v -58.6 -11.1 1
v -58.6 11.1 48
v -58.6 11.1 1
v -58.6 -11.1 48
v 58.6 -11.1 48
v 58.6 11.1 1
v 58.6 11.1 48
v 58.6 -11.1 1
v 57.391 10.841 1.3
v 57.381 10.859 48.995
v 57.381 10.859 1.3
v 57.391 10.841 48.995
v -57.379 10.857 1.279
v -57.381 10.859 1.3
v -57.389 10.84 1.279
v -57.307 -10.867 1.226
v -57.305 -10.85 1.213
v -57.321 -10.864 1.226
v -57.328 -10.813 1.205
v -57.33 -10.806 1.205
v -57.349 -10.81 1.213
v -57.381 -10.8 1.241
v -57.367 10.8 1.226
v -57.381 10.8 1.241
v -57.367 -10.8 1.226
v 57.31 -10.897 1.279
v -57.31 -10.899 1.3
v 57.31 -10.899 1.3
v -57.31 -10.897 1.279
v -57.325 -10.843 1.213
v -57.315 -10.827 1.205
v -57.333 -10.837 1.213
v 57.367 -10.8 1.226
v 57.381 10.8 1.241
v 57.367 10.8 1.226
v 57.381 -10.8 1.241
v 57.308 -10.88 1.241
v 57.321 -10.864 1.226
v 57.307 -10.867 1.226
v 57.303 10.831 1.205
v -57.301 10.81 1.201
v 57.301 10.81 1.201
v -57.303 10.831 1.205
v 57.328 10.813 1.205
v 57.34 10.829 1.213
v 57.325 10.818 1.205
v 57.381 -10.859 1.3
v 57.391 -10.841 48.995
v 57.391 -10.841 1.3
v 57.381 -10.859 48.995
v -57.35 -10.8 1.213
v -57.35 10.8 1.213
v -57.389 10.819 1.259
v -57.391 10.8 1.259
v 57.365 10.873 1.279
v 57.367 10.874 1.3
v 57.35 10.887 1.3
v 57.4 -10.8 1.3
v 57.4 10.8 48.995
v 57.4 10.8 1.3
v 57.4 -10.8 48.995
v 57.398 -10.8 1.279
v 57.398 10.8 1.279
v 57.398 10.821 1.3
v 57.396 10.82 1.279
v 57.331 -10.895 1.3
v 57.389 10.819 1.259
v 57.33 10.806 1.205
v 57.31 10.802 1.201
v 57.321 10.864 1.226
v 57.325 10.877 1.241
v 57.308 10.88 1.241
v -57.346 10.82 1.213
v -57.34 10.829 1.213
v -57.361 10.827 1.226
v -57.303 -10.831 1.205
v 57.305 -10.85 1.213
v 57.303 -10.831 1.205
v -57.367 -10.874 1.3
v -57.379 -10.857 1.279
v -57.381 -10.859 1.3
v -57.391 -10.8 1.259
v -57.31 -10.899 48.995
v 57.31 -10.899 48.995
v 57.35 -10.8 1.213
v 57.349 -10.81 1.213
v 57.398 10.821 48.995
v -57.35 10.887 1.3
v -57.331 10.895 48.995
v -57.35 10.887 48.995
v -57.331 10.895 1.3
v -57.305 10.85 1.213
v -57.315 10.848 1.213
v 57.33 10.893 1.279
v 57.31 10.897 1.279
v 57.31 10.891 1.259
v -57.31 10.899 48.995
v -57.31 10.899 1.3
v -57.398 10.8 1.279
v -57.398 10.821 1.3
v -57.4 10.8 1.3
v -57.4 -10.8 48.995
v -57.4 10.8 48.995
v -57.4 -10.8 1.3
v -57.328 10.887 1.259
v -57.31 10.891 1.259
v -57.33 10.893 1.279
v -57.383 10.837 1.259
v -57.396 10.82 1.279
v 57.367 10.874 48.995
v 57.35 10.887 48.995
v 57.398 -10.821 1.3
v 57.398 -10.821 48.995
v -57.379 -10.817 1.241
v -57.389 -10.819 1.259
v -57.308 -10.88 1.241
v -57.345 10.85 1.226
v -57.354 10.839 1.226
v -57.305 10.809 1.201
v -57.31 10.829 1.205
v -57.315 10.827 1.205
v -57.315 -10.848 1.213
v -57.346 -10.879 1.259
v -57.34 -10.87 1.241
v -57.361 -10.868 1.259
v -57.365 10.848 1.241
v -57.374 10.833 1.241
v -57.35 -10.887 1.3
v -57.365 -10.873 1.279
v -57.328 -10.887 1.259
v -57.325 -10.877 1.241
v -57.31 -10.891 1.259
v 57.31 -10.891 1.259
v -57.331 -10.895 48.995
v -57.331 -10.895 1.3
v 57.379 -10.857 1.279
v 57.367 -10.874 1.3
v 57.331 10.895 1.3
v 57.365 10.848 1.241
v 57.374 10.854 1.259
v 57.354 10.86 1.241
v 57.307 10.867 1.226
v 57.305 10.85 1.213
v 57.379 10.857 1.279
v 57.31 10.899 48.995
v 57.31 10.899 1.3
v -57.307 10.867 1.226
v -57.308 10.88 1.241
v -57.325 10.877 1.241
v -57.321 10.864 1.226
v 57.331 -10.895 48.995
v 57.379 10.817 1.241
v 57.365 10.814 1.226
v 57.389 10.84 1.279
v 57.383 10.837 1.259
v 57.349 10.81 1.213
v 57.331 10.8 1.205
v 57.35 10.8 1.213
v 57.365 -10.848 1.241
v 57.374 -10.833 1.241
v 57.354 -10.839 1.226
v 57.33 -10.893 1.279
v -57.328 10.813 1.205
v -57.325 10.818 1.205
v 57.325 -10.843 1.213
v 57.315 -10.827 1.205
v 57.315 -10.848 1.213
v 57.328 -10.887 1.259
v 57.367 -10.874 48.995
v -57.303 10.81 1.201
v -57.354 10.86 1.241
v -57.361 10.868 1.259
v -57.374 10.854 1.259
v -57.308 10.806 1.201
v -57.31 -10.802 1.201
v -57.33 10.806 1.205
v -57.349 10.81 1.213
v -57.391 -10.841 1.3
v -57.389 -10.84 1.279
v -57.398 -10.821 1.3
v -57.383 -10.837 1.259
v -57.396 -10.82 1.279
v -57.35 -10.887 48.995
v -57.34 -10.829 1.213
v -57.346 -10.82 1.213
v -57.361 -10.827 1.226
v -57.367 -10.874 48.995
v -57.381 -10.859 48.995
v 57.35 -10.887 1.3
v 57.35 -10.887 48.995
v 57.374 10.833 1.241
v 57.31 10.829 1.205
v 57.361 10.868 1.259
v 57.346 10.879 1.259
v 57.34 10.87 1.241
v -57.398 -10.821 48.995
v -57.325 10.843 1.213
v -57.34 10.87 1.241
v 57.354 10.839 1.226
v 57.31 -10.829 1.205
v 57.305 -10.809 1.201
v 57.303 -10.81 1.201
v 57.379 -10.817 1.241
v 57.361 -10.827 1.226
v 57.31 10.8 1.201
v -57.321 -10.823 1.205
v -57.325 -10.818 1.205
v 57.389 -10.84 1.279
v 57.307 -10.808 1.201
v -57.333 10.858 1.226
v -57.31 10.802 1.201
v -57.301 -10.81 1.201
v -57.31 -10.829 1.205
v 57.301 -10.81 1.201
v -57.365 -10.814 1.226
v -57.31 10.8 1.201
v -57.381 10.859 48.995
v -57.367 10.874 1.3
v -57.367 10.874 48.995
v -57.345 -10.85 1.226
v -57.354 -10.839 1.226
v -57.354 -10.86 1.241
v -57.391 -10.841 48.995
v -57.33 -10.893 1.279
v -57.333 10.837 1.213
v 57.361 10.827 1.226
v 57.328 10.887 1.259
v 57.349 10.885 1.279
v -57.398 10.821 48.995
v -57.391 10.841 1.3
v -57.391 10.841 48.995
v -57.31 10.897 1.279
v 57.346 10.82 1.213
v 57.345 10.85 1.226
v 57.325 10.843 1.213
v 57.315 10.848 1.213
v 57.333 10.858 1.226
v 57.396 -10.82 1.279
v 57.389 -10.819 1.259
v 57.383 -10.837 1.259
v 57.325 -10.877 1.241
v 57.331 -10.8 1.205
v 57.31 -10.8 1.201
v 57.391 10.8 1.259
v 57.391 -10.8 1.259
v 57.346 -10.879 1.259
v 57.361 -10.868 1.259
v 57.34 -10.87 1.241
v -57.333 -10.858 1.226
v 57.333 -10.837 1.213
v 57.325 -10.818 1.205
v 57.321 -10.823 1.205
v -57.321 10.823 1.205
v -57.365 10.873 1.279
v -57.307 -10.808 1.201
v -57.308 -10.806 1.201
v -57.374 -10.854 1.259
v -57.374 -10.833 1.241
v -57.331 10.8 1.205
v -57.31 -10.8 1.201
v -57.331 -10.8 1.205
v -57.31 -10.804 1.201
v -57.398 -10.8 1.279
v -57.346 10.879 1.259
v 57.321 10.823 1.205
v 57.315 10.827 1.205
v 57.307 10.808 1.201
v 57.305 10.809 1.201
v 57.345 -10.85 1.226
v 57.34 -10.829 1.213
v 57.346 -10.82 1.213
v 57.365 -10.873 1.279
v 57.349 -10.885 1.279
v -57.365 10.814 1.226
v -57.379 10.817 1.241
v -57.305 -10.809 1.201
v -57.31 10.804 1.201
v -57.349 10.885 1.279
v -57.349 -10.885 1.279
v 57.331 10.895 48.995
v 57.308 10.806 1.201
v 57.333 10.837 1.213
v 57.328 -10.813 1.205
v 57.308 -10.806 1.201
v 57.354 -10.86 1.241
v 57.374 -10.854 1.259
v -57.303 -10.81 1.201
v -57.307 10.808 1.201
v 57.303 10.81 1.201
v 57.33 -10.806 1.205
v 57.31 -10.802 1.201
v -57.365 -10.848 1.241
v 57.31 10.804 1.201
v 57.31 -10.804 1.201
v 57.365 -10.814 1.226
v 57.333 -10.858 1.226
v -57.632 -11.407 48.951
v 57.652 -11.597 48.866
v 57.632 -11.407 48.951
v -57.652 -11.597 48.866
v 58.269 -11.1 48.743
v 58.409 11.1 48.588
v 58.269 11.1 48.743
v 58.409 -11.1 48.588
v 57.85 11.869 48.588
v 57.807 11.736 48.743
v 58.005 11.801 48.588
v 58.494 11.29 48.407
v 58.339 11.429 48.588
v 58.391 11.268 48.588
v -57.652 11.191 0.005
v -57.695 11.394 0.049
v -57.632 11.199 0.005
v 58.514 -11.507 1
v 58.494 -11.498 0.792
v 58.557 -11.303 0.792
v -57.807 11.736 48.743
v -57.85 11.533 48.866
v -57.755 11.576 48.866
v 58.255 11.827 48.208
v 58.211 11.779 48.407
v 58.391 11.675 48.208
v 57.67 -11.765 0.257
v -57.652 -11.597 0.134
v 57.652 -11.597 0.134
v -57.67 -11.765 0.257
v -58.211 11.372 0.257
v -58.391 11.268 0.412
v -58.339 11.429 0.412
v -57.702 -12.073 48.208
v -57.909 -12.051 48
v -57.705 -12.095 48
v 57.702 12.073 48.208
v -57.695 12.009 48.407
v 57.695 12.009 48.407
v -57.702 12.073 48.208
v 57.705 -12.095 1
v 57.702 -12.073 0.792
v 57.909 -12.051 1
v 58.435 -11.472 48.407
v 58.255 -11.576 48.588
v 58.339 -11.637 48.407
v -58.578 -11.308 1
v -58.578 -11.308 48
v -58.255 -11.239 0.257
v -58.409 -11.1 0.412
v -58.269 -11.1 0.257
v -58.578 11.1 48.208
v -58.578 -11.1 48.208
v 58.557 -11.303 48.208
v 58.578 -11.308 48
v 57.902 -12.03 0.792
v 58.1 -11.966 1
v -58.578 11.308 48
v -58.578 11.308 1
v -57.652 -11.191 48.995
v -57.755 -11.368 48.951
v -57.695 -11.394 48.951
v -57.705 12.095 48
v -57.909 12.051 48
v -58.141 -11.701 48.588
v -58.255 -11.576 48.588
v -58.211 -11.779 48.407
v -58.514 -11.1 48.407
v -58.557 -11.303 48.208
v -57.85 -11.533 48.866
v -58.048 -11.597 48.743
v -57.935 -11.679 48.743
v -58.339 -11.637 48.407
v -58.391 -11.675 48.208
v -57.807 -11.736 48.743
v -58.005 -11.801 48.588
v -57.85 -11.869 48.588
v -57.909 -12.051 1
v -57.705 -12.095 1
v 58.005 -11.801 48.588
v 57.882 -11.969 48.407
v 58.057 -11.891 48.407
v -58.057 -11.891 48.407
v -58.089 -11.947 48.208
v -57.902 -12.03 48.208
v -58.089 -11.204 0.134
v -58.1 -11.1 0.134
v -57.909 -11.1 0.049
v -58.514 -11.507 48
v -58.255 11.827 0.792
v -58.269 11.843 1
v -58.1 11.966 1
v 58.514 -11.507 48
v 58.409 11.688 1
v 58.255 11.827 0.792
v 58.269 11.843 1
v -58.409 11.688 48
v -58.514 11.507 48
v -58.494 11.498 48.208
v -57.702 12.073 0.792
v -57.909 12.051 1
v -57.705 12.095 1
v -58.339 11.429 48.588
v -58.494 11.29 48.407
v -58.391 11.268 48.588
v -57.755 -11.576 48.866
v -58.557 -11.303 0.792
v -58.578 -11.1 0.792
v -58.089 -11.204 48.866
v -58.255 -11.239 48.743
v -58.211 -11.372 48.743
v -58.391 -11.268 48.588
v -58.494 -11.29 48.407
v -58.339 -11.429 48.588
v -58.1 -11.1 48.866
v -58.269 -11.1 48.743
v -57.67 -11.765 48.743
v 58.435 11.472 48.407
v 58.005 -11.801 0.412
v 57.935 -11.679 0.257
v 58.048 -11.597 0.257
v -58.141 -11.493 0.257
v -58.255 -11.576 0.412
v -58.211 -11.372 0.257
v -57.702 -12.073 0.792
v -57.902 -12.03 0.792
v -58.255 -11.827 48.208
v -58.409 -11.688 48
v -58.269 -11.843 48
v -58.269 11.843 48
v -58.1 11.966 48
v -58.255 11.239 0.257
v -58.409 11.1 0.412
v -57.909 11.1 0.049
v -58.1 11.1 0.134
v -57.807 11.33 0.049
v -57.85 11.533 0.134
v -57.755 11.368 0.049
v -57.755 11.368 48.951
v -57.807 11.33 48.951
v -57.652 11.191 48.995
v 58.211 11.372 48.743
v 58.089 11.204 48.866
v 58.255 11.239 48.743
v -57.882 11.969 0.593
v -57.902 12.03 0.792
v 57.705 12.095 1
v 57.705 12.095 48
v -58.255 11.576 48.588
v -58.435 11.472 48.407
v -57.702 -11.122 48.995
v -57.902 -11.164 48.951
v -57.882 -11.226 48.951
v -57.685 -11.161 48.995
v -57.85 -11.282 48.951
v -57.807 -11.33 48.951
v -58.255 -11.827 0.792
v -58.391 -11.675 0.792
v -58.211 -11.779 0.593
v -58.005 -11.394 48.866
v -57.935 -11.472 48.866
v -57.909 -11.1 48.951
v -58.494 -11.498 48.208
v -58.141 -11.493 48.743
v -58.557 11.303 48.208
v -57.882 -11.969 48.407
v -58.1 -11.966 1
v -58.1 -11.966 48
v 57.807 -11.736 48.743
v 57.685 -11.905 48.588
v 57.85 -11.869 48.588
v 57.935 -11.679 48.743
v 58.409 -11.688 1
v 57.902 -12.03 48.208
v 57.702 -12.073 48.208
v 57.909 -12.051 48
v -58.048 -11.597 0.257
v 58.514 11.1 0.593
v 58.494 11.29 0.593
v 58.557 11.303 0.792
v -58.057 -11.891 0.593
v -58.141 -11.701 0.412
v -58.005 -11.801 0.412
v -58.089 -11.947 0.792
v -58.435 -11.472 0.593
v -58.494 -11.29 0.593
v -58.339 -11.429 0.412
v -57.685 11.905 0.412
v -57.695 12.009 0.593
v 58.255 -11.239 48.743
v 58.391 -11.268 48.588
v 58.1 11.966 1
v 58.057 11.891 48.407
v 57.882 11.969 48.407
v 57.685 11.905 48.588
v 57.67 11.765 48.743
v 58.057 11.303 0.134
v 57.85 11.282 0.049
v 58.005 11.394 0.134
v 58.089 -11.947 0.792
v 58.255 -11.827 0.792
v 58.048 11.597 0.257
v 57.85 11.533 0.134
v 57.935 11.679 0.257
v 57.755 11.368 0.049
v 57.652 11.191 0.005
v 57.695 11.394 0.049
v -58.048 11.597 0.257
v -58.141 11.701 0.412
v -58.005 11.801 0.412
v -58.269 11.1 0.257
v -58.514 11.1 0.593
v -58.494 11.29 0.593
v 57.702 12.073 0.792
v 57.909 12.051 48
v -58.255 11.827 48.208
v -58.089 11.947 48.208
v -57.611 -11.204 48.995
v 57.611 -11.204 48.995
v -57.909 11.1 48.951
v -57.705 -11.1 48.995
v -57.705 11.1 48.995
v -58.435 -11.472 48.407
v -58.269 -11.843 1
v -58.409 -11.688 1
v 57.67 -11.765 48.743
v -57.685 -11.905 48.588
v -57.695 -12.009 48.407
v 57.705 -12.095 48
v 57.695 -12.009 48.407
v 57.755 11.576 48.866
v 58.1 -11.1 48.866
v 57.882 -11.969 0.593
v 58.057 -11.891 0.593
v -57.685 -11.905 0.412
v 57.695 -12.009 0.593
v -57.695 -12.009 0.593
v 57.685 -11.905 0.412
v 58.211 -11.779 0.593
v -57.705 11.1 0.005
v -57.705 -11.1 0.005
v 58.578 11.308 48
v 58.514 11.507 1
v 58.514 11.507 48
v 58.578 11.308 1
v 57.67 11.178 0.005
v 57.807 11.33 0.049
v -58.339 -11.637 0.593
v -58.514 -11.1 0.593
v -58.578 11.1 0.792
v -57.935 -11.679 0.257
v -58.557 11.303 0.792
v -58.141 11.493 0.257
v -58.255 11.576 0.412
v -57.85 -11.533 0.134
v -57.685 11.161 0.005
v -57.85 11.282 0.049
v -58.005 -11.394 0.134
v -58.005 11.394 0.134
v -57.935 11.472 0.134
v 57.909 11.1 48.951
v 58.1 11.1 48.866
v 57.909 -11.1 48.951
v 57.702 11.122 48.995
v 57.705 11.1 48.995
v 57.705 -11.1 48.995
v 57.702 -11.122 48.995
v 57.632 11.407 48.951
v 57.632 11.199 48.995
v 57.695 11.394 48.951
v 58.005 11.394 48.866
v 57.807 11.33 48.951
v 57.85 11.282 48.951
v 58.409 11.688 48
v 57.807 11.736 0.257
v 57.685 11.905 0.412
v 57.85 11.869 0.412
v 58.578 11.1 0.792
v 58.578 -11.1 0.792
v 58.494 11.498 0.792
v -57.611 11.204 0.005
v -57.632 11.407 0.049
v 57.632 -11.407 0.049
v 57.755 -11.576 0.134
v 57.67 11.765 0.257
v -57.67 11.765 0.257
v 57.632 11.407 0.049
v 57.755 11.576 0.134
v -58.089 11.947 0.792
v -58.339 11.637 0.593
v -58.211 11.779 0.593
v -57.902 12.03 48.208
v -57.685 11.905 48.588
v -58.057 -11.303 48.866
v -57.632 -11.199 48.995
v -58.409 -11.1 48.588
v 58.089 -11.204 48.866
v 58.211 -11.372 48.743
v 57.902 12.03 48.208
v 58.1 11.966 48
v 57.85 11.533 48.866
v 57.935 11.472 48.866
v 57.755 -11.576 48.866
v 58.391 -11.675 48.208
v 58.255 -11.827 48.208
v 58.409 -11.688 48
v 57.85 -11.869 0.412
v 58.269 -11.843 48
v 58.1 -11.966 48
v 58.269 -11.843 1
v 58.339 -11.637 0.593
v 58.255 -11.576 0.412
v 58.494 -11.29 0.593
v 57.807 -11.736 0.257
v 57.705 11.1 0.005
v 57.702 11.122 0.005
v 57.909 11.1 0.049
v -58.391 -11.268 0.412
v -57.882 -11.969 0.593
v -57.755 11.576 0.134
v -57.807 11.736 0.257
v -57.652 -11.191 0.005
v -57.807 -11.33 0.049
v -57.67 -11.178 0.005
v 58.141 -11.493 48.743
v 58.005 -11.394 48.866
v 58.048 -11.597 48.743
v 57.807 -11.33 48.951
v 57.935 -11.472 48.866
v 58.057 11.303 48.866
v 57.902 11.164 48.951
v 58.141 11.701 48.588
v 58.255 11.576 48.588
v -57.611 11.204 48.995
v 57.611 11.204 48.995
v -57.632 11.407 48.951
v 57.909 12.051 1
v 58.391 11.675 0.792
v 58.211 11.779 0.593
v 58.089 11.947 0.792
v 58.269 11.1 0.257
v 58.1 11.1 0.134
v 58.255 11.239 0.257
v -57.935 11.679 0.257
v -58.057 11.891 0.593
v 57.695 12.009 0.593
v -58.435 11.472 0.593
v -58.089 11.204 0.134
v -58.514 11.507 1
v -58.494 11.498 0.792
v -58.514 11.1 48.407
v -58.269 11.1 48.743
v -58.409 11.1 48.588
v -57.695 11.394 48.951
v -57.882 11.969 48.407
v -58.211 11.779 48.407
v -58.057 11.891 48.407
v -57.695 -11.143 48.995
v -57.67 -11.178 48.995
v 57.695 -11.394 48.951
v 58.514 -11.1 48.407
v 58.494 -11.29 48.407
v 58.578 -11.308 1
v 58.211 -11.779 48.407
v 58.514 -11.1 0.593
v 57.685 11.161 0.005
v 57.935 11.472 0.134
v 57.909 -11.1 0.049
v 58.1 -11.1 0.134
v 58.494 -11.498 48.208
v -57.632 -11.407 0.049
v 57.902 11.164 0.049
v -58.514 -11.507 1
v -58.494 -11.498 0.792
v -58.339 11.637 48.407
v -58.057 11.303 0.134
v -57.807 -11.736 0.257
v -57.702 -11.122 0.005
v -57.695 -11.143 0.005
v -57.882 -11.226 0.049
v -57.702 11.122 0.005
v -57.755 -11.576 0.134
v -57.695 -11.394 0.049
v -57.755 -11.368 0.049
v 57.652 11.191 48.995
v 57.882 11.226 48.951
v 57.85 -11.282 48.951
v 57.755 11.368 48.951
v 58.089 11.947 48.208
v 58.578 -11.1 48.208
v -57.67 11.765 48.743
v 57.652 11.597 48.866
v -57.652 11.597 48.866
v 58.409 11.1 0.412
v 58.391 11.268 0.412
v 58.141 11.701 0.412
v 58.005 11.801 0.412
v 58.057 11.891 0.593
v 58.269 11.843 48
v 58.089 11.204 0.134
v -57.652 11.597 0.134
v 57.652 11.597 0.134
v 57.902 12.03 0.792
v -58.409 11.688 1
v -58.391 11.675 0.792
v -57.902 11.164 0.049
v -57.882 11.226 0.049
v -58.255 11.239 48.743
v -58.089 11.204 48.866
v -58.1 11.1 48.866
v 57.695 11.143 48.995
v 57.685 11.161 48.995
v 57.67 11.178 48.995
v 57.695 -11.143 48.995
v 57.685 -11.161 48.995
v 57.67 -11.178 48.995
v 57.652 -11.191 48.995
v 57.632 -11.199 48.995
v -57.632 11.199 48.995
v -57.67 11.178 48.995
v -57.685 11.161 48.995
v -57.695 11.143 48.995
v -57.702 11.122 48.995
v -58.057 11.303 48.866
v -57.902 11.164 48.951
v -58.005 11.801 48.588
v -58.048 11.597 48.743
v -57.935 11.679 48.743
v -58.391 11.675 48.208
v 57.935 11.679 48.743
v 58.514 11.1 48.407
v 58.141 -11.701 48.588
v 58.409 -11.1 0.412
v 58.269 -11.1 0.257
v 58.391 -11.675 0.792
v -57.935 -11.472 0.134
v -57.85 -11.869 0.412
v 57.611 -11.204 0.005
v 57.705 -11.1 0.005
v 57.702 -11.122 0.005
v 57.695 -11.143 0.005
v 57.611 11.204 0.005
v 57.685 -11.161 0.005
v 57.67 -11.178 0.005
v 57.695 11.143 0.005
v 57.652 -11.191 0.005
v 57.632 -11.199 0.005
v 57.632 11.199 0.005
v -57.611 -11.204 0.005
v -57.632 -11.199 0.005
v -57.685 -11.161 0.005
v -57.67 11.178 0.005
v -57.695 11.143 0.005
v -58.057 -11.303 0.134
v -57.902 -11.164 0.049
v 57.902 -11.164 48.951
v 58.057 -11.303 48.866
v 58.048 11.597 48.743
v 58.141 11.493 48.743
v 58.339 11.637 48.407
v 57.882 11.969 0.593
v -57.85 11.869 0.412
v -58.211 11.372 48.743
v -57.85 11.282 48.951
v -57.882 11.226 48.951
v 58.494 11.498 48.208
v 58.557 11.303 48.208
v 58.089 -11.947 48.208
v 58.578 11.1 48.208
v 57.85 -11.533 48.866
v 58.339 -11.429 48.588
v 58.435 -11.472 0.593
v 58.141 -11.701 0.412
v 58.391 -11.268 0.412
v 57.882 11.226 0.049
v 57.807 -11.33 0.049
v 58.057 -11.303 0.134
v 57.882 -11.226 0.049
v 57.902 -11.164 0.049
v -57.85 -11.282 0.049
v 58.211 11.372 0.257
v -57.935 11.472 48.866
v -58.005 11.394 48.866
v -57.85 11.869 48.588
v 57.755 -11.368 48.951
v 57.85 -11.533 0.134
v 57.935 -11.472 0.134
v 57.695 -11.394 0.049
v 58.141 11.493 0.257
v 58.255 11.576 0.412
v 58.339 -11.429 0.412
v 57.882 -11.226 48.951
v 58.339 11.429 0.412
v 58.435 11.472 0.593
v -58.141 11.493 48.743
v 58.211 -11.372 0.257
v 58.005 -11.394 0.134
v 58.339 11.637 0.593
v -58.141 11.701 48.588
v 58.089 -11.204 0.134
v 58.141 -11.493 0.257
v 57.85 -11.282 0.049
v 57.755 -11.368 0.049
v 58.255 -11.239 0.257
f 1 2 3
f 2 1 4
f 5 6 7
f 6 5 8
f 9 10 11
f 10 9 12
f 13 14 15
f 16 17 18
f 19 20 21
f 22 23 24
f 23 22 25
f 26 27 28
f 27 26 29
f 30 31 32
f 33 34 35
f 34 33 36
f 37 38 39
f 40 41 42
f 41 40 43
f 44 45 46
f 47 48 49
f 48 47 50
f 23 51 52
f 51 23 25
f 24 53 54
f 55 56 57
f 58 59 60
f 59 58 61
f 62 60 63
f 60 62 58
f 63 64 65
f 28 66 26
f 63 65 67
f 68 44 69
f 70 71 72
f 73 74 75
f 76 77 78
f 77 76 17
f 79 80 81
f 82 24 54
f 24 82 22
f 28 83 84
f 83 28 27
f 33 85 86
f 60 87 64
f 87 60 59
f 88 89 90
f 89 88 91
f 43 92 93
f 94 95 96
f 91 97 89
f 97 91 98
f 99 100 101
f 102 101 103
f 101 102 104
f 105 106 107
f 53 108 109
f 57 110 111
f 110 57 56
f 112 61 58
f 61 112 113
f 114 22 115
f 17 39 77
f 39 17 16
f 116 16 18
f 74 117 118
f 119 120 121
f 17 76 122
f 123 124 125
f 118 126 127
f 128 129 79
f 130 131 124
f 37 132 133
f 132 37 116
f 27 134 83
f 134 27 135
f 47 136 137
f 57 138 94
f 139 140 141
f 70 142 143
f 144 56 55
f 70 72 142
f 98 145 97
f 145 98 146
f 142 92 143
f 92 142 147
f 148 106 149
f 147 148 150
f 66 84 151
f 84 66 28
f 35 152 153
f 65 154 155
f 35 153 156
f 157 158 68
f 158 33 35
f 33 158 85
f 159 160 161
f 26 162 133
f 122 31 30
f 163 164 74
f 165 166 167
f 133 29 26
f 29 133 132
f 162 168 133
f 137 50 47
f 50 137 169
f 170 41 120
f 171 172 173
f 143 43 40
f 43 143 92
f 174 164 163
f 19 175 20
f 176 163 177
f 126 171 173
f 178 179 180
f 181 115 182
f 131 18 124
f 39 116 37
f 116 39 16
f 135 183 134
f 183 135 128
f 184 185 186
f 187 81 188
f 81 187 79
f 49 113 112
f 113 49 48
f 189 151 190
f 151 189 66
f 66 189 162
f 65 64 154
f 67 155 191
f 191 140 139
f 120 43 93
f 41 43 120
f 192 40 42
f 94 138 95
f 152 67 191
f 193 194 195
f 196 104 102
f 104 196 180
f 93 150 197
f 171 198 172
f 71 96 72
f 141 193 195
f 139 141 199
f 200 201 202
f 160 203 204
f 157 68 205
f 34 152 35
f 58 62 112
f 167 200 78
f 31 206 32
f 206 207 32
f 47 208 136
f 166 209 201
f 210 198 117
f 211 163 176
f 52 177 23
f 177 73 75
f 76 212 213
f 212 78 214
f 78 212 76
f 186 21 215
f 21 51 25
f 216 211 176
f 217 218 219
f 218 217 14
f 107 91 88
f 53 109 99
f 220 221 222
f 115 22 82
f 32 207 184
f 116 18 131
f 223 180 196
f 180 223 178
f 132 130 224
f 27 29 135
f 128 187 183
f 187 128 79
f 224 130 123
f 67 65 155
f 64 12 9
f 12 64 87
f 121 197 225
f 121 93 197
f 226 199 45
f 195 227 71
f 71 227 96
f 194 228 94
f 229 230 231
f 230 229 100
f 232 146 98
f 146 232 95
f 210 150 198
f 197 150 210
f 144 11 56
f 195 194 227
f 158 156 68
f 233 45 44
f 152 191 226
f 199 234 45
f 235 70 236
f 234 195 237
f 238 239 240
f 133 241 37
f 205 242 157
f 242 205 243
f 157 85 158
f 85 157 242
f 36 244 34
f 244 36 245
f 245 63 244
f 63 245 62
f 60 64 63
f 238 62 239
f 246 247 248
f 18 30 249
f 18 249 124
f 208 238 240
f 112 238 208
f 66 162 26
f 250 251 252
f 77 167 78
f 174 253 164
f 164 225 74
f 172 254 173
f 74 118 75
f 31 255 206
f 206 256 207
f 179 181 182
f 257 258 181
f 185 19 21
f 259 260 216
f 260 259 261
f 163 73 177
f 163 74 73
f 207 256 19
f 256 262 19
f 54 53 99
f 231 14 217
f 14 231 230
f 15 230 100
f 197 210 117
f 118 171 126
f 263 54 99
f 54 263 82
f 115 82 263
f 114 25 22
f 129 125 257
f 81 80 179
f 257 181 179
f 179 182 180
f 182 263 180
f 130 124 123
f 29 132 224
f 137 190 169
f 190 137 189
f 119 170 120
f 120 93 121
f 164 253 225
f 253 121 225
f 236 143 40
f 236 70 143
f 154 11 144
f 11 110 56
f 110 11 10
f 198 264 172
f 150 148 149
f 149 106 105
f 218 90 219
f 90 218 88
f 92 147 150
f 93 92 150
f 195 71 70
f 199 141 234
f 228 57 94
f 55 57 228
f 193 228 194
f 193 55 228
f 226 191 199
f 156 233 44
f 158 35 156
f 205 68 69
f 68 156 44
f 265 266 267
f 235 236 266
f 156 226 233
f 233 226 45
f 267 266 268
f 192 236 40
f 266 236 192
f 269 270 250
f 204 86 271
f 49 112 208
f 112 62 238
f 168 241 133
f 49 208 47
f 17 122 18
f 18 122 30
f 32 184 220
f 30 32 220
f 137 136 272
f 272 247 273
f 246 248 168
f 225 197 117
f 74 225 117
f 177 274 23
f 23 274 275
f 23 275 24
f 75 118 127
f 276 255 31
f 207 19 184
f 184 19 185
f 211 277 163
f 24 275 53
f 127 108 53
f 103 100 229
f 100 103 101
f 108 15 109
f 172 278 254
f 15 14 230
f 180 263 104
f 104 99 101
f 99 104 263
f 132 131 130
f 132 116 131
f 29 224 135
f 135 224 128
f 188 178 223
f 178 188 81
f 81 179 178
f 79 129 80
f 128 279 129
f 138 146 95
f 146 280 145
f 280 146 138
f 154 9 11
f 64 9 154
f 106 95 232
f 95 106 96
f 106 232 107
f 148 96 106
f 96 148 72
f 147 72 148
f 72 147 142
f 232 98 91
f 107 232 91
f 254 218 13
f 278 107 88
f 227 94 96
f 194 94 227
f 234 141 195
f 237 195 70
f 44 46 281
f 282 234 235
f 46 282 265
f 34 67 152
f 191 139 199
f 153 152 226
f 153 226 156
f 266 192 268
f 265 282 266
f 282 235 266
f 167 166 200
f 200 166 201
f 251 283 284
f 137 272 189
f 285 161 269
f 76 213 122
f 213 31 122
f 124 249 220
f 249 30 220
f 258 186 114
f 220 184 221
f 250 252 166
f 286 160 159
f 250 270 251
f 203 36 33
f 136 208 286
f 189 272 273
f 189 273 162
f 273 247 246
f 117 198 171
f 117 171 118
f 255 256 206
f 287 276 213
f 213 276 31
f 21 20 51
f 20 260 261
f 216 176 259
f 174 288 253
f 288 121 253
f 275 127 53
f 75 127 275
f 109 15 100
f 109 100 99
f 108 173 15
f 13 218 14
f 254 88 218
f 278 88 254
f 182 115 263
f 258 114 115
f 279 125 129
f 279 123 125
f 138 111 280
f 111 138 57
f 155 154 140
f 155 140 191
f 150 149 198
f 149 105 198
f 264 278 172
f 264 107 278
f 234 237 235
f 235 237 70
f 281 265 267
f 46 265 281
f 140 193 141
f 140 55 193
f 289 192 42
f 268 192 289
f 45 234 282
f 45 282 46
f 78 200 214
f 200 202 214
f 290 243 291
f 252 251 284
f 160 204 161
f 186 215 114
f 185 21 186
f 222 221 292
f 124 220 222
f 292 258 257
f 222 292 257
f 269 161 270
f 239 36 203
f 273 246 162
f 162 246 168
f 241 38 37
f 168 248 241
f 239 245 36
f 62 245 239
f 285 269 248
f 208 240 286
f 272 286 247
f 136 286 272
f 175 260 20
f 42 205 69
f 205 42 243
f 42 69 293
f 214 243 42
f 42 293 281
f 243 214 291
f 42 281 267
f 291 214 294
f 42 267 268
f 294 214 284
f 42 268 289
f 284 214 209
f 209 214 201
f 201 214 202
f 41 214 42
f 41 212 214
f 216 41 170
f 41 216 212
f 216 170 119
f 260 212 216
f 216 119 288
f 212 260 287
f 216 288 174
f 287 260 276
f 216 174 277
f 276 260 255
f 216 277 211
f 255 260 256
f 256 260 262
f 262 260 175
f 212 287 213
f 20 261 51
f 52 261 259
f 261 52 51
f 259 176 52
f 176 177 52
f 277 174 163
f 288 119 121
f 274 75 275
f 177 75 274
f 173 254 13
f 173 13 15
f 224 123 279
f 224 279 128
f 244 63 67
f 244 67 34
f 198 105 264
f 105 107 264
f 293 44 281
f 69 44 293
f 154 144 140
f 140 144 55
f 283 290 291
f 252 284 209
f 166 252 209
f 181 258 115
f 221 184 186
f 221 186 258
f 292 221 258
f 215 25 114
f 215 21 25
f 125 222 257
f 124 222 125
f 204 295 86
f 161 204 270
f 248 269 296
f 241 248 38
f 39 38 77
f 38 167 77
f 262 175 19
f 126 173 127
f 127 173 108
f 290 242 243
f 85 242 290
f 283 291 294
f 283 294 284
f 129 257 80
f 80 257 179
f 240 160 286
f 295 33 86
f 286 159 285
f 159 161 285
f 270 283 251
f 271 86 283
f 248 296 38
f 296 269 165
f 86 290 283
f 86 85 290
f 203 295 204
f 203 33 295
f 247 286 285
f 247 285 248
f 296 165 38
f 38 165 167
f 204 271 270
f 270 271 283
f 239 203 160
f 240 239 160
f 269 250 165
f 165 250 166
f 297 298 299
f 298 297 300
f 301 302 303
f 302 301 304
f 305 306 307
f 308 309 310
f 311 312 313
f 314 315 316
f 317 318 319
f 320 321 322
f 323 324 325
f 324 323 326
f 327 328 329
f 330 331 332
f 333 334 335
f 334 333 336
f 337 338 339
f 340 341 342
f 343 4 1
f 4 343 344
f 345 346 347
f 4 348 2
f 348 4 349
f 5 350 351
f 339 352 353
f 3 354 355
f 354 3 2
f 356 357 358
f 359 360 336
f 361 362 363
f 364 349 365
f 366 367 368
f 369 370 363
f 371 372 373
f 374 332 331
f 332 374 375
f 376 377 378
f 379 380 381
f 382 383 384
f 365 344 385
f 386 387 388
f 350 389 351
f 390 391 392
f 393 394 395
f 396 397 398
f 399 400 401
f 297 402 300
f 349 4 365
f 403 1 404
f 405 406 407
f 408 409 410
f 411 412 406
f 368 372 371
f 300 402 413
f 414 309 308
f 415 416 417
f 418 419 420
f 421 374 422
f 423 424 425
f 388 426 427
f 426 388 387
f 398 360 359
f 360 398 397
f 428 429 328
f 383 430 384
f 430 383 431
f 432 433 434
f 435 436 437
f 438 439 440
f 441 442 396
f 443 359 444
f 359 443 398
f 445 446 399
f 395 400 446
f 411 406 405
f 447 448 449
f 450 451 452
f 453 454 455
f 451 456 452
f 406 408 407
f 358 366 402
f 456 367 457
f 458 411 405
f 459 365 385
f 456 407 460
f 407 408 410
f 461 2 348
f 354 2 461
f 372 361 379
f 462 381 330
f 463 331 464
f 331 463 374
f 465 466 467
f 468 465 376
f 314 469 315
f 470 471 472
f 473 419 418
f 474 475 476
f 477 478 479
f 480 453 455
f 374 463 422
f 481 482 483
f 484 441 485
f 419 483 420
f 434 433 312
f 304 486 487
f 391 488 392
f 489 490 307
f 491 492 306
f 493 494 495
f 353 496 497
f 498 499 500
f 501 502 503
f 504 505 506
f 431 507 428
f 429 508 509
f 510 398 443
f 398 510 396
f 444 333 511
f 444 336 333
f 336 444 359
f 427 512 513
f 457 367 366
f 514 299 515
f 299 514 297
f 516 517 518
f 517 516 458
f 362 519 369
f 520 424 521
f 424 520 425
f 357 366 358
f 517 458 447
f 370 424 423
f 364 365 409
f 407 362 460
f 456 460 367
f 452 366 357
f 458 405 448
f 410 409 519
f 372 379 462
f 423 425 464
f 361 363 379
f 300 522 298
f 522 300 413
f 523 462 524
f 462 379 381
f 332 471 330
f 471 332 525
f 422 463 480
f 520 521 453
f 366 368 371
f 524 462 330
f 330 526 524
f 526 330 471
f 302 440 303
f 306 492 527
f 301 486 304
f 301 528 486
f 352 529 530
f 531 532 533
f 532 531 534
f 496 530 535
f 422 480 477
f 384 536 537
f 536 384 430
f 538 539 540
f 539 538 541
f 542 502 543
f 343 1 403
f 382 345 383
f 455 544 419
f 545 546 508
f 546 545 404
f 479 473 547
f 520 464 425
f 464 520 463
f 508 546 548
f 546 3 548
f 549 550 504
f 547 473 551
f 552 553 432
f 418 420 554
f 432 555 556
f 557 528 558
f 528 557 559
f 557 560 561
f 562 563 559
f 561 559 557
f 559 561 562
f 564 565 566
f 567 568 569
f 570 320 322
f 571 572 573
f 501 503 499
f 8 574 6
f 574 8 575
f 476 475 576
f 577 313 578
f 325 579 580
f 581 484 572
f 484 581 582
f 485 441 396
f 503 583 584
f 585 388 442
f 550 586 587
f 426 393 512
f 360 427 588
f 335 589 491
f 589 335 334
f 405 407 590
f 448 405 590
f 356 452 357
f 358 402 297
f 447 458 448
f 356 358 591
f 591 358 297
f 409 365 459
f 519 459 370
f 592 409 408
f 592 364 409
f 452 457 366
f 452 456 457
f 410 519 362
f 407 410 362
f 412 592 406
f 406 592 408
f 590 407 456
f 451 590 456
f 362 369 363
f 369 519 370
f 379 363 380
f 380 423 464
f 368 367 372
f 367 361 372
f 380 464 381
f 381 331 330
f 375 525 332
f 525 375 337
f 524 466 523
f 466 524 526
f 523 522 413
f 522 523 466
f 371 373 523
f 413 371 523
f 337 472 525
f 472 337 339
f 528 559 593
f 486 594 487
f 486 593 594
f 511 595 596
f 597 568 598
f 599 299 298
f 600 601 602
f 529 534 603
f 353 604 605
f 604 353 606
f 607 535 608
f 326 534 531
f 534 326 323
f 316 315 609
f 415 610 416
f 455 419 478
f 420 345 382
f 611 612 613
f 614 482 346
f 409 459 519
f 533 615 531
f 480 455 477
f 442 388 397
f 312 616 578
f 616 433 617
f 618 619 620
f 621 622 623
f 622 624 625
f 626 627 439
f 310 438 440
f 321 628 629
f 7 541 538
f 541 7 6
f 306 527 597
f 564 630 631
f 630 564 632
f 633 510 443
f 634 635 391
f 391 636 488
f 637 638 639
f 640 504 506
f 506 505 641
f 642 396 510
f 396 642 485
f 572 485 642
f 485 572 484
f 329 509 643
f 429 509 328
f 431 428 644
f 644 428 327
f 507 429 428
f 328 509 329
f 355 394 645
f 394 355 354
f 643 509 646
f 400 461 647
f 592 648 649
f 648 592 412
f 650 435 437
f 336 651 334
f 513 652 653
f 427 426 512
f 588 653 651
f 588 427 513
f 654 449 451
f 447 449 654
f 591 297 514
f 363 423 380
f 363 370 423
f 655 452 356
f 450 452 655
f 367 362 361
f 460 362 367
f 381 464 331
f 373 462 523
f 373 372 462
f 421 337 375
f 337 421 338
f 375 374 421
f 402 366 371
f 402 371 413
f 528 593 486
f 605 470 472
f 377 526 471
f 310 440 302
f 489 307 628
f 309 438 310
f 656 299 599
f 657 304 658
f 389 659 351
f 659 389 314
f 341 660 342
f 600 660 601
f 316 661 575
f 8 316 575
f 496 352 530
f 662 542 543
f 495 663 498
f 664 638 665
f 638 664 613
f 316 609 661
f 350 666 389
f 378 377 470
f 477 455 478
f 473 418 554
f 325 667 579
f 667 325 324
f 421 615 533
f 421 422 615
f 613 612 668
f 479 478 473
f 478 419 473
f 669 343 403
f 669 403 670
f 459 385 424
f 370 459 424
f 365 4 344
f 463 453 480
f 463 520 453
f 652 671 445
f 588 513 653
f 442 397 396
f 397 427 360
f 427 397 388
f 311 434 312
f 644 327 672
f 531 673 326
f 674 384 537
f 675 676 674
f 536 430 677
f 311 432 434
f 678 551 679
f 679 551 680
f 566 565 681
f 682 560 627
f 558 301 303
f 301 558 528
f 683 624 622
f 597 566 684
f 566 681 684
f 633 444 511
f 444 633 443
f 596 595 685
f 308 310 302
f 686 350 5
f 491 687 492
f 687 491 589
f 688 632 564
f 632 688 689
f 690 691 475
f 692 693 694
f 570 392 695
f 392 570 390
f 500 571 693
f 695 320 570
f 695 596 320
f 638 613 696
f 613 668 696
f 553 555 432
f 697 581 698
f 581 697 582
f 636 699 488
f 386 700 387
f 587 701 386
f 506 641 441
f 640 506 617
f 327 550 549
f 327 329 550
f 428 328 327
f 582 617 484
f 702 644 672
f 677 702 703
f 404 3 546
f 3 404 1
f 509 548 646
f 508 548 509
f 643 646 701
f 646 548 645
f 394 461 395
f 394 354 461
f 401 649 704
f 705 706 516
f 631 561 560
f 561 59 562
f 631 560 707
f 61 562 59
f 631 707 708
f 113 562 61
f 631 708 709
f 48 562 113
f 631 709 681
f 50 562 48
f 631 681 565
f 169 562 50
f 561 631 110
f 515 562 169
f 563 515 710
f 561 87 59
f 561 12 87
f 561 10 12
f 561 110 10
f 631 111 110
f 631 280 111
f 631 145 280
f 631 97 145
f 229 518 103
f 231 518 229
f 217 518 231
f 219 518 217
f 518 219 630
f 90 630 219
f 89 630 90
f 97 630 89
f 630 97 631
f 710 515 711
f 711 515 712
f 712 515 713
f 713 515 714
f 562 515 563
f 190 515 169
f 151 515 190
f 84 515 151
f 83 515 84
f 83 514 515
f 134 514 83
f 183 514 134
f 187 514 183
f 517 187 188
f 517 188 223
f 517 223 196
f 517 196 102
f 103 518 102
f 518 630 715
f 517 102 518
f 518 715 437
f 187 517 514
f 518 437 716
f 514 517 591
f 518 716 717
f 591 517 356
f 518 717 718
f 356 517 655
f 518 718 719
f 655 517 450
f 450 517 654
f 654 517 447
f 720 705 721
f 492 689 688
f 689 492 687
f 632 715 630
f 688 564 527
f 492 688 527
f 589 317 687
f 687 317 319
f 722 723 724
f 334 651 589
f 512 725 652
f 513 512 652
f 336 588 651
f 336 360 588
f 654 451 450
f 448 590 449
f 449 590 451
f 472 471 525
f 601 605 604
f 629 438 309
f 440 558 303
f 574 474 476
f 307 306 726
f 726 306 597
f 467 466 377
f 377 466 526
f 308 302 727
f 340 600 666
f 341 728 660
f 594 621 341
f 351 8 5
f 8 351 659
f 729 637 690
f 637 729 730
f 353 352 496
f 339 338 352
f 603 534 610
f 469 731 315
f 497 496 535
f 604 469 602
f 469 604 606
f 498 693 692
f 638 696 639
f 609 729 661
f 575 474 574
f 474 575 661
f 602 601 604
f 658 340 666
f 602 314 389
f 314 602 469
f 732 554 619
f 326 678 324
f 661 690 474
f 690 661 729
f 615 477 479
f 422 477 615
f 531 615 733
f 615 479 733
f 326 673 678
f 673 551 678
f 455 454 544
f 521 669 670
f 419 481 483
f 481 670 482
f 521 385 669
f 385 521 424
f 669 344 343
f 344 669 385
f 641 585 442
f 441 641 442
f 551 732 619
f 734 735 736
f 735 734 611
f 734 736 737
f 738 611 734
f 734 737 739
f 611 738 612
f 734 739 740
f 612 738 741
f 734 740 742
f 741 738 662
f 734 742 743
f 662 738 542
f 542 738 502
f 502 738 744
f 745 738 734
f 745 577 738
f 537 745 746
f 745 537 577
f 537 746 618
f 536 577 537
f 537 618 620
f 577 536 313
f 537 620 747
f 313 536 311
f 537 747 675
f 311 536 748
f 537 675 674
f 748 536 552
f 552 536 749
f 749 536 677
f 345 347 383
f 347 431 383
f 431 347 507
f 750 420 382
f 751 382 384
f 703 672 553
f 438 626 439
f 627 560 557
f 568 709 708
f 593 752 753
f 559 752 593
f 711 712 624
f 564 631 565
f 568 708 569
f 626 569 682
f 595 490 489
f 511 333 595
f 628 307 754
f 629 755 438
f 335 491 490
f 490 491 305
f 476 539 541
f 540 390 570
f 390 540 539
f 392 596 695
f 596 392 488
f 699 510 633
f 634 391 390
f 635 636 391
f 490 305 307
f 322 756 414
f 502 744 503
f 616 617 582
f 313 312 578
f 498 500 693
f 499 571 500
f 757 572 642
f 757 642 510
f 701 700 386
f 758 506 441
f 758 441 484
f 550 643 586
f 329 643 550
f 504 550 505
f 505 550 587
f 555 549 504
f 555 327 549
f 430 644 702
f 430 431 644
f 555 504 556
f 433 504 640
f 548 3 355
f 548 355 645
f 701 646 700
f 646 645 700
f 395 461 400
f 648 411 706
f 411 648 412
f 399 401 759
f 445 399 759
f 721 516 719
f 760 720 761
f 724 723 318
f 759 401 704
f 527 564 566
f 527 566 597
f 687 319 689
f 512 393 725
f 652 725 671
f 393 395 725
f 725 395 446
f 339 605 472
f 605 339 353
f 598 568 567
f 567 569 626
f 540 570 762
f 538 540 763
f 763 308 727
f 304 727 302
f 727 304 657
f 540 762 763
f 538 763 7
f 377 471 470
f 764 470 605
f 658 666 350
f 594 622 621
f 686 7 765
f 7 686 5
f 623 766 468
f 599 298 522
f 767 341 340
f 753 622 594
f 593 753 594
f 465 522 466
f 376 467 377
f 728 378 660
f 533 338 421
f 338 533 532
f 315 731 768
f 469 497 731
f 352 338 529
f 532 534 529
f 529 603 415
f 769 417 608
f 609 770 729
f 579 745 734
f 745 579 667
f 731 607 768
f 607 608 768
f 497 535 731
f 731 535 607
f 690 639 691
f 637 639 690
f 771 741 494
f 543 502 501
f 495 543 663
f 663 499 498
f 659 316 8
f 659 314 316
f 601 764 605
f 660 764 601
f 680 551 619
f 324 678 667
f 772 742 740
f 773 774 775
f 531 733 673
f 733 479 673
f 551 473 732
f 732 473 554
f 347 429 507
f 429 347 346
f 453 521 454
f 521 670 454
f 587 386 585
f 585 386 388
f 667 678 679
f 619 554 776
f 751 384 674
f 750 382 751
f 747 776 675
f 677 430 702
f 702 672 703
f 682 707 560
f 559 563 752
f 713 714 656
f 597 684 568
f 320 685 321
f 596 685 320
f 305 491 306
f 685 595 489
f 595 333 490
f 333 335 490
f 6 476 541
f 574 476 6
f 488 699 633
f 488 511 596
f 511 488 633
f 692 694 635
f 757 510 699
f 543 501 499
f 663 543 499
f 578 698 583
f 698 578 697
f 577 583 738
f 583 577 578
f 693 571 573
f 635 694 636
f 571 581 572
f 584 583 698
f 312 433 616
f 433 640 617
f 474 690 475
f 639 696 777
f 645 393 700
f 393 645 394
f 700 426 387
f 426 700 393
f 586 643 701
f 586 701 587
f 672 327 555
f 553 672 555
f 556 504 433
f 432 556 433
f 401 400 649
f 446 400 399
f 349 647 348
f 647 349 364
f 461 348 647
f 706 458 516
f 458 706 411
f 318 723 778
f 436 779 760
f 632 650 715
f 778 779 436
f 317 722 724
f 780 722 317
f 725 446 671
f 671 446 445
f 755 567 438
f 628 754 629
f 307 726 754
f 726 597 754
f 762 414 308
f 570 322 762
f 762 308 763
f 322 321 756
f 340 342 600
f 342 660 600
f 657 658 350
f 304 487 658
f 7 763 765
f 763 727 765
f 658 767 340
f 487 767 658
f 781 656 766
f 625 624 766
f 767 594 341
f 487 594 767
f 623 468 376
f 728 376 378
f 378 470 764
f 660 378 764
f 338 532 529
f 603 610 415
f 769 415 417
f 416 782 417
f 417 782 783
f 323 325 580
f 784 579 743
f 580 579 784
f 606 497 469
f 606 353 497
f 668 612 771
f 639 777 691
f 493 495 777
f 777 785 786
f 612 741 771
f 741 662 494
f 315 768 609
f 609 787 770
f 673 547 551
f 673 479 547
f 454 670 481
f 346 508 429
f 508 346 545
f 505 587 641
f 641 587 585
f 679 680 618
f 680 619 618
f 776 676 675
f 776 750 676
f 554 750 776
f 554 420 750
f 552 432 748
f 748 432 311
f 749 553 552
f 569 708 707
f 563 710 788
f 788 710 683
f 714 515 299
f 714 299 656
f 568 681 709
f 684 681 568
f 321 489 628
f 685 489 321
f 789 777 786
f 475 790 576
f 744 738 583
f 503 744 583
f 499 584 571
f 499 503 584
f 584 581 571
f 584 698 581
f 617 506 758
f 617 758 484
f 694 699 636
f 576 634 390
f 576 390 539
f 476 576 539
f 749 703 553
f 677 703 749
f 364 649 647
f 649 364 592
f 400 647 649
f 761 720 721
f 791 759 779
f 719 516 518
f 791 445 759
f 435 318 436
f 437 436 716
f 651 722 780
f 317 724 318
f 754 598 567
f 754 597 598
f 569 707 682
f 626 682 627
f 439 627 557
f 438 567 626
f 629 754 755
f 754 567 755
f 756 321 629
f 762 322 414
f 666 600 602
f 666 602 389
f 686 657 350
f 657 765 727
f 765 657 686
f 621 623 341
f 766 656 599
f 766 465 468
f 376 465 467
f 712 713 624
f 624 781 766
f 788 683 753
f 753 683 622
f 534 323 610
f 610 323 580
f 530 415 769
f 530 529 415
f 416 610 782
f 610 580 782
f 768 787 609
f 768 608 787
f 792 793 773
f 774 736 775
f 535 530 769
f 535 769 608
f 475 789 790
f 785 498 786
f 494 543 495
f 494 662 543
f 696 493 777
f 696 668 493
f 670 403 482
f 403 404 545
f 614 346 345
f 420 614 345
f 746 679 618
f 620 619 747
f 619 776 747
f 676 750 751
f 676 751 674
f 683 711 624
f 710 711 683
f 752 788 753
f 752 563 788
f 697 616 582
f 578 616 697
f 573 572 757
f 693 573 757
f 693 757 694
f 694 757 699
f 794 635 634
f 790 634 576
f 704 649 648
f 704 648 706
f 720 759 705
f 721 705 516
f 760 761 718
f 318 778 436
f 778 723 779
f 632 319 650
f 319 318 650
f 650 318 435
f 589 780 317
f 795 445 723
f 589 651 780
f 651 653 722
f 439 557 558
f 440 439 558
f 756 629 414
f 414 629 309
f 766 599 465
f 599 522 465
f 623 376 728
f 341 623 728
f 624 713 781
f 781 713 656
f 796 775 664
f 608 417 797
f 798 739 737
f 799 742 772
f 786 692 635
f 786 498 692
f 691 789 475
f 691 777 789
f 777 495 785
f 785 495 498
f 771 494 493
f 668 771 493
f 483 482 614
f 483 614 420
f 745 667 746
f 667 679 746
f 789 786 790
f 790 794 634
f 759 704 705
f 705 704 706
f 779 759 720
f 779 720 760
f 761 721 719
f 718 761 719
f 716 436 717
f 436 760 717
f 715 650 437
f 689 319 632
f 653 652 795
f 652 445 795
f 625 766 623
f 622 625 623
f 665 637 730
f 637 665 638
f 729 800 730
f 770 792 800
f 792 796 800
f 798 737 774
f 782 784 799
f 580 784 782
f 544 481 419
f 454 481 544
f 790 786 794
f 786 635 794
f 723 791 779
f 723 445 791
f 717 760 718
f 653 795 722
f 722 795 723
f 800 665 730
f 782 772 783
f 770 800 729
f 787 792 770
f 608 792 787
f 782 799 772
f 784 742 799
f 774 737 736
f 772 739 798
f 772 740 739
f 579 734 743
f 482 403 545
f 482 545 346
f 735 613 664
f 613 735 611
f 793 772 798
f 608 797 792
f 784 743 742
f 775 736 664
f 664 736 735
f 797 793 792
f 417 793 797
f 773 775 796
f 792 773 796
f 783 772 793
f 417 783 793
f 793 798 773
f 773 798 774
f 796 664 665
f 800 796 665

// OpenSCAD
$fn=30;

/* [Global] */

// Render
Objects = "LidlessBox"; // [Both, Box, Lid, LidlessBox]

// use the following syntax to add 1 or more internal x compartment lengths (mm)
x_sizes = [114.8];
// use the following syntax to add 1 or more internal y compartment widths (mm)
y_sizes = [21.8];
// Total height including Lid (If Lidless, this is the final height)
z_size = 49;

// Type of lid pattern
gPattern = "Fancy"; //  [Hex, Diamond, Web, Solid, Fancy]
// Tolerance
gTol = 0.3;
// Wall Thickness
gWT = 1.2;
// Curvature bottom
ipR = 0.1;

/* [Spider Web] */
// Amount of space from one ring or webs to the next
WebSpacing = 5;
// How many rings of webs, best of more than needed
WebStrands = 20;
// Thickness of the strands
WedThickness = 1.8;
// How many segments of web
WebWedges = 12;


/* [Hidden] */
/* Private variables */

// Check if we are in Lidless mode
isLidless = (Objects == "LidlessBox");

// Box Height
TotalZ = z_size;
LidH = 2.2;
RailThick = 1.4;
RailWidth = LidH + RailThick;

function SumList(list, start, end) = (start == end) ? 0 : list[start] + SumList(list, start+1, end);

// Box Length
TotalX = SumList(x_sizes,0,len(x_sizes)) + gWT*(len(x_sizes)+1);

// Box Width - If lidless, we don't need the extra width for the sliding rails
TotalY = isLidless ? 
    SumList(y_sizes,0,len(y_sizes)) + gWT*(len(y_sizes)+1) : 
    SumList(y_sizes,0,len(y_sizes)) + RailWidth*2 + gWT*(len(y_sizes)-1);

echo("Size: ",TotalX,TotalY);
    
// Height not counting the lid. If lidless, height is the full z_size.
AdjBoxHeight = isLidless ? TotalZ : TotalZ - LidH;

 module regular_polygon(order, r=1){
 	angles=[ for (i = [0:order-1]) i*(360/order) ];
 	coords=[ for (th=angles) [r*cos(th), r*sin(th)] ];
 	polygon(coords);
 }

module circle_lattice(ipX, ipY, Spacing=10, Walls=1.2)  {


   intersection() {
      square([ipX,ipY]); 
      union() {
	    for (x=[-Spacing:Spacing:ipX+Spacing]) {
           for (y=[-Spacing:Spacing:ipY+Spacing]){
	          difference()  {
			     translate([x+Spacing/2, y+Spacing/2]) circle(r=Spacing*0.75);
			     translate([x+Spacing/2, y+Spacing/2]) circle(r=(Spacing*0.75)-Walls);
		      }
           }   // end for y        
	    }  // end for x
      } // End union
   }
}


module diamond_lattice(ipX, ipY, DSize, WSize)  {

   lOffset = DSize + WSize;

	difference()  {
		square([ipX, ipY]);
		for (x=[0:lOffset:ipX]) {
            for (y=[0:lOffset:ipY]){
  			   translate([x, y])  regular_polygon(4, r=DSize/2);
			   translate([x+lOffset/2, y+lOffset/2]) regular_polygon(4, r=DSize/2);
		    }
        }        
	}
}

module hex_lattice(ipX, ipY, DSize, WSize)  {
    lXOffset = DSize + WSize;
    lYOffset = (DSize+WSize)/cos(30) * 1.5;

	difference()  {
		square([ipX, ipY]);
		for (x=[0:lXOffset:ipX]) {
            for (y=[0:lYOffset:ipY]){
  			   translate([x, y]) rotate([0,0,30]) regular_polygon(6, r=DSize/cos(30)/2);
			   translate([x+lXOffset/2, y+lYOffset/2]) rotate([0,0,30]) regular_polygon(6, r=DSize/cos(30)/2);
		    }
        }  
	}
}

// Make a star with X points
module star(radius, wedges)
{
	angle = 360 / wedges;
	difference() {
		circle(radius, $fn = wedges);
		for(i = [0:wedges - 1]) {
			rotate(angle / 2 + angle * i) translate([radius, 0, 0]) 
			    scale([0.8, 1, 1]) 
				    circle(radius * sin(angle / 2), $fn = 24);
		}
	}
}

module spider_web(ipWebSpacing, strands, ipThickness, wedges) 
{
	for(i = [0:strands - 1]) 
    {
        difference() {
            star(ipWebSpacing * i, wedges);
            offset(r = -ipThickness) star(ipWebSpacing * i, wedges);
        }
	}

	angle = 360 / wedges;
	for(i = [0:wedges - 1])
    {
		rotate(angle * i) translate([0, -ipThickness / 2, 0]) 
			square([ipWebSpacing * strands, ipThickness]);
	}    
}


module RCube(x,y,z,ipR=ipR) {
    translate([-x/2,-y/2,0]) hull(){
      translate([ipR,ipR,ipR]) sphere(ipR);
      translate([x-ipR,ipR,ipR]) sphere(ipR);
      translate([ipR,y-ipR,ipR]) sphere(ipR);
      translate([x-ipR,y-ipR,ipR]) sphere(ipR);
      translate([ipR,ipR,z-ipR]) sphere(ipR);
      translate([x-ipR,ipR,z-ipR]) sphere(ipR);
      translate([ipR,y-ipR,z-ipR]) sphere(ipR);
      translate([x-ipR,y-ipR,z-ipR]) sphere(ipR);
      }  
} 


module lid(ipPattern = "Hex", ipTol = 0.3){
  lAdjX = TotalX;
  lAdjY = TotalY-RailWidth*2-ipTol*2;  
  lAdjZ = LidH;
  CutX = lAdjX - 8;
  CutY = lAdjY - 8;
  lFingerX = 15;
  lFingerY = 16;  

  // main square with center removed for a pattern. 0.01 addition is a kludge to avoid a 2d surface remainging when substracting the lid from the box.
  difference() {
      translate([0,0,lAdjZ/2]) cube([lAdjX+0.01, lAdjY+0.01 , lAdjZ], center=true);

      translate([0,0,lAdjZ/2]) cube([CutX, CutY, lAdjZ], center = true);
      translate([TotalX/2-gWT/2,0,LidH/2])cube([gWT+0.01,TotalY-RailWidth,LidH],center=true);

     // make a slot for the latch can flex          
     translate([TotalX/2,TotalY/2-RailWidth-1.4,-1]) RCube(18,0.8,4,0.4);
     translate([TotalX/2,-TotalY/2+RailWidth+1.4,-1]) RCube(18,0.8,4,0.4);
  }
  
  // The Side triangles
  difference() {
    intersection () {
      union () {
          translate([-lAdjX/2,-lAdjY/2-LidH,LidH]) rotate([0,90,0]) linear_extrude(TotalX-2) polygon([[LidH,0],[LidH,LidH],[0,LidH]], paths=[[0,1,2]]);
          translate([-lAdjX/2,lAdjY/2,LidH]) rotate([0,90,0]) linear_extrude(TotalX-2) polygon([[0,0],[LidH,0],[LidH,LidH]], paths=[[0,1,2]]);
      }
      
      // check if this is real lid (ipTol>0) or negative lid (iptol = 0)
      // if real lid remove center for pattern and remove latches
      if (ipTol>0) 
         {cube([lAdjX, lAdjY + 2*LidH-0.2, lAdjZ*2], center=true);}
    }
       
    if (ipTol>0)
    {
        // cut out slots for the latch 
        translate([TotalX/2-7,lAdjY/2+RailWidth/2+ipTol,LidH/2]) scale([1.5,1,1]) rotate([0,0,45]) cube ([2+ipTol,2+ipTol,LidH+1],center=true);
          
        translate([TotalX/2-7,-lAdjY/2-RailWidth/2-ipTol,LidH/2]) scale([1.5,1,1]) rotate([0,0,45]) cube ([2+ipTol,2+ipTol,LidH+1],center=true);
  
        // trip the rail to ease going past the nub
        translate([TotalX/2,TotalY/2-LidH/2-ipTol,0]) cube([12,LidH,LidH*2],center=true); 
        translate([TotalX/2,-TotalY/2+LidH/2+ipTol,0]) cube([12,LidH,LidH*2],center=true); 
    }
    
  }
 
  // Finger slot
  difference () {
      translate([-CutX/2,-lFingerY/2,0]) cube([lFingerX, lFingerY, lAdjZ]); 
      translate([-CutX/2+lFingerX/2,0,20+LidH/2])sphere(20);     
  }


  // Solid top
  if (ipPattern == "Solid") 
      {   
       difference (){ 
          translate([-CutX/2,-CutY/2,0]) cube([CutX, CutY,   lAdjZ]);
          translate([-CutX/2,-lFingerY/2,0]) cube([lFingerX, lFingerY, lAdjZ]); 
      }
    }
    

  // Spiderweb top
  if (ipPattern == "Web") 
    {
       difference (){ 
         intersection () 
        {    
             linear_extrude(height = lAdjZ) spider_web(WebSpacing, WebStrands, WedThickness, WebWedges);  
              translate([-CutX/2,-CutY/2,0]) cube([CutX, CutY, LidH*2]); 
        }
          translate([-CutX/2,-lFingerY/2,0]) cube([lFingerX, lFingerY, lAdjZ]); 
      }
    }

  // Hex top
  if (ipPattern == "Hex") 
    {   
       difference (){ 
          translate([-CutX/2,-CutY/2,0]) linear_extrude(height = lAdjZ) hex_lattice(CutX,CutY,6,2);
          translate([-CutX/2,-lFingerY/2,0]) cube([lFingerX, lFingerY, lAdjZ]); 
      }
    }

  // Diamond top
  if (ipPattern == "Diamond") 
    {
      difference (){ 
        translate([-CutX/2,-CutY/2,0]) linear_extrude(height = lAdjZ) diamond_lattice(CutX,CutY,7,2);
        translate([-CutX/2,-lFingerY/2,0]) cube([lFingerX, lFingerY, lAdjZ]); 
      }
    }

  // fancy top
  if (ipPattern == "Fancy") 
    {
       echo(CutX,CutY);
      difference (){ 
        translate([-CutX/2,-CutY/2,0]) linear_extrude(height = lAdjZ) circle_lattice(CutX,CutY);
        translate([-CutX/2,-lFingerY/2,0]) cube([lFingerX, lFingerY, lAdjZ]); 
      }
    }

}


module box () {
//  Main Box
  difference() {    
    translate ([0,0,AdjBoxHeight/2]) cube([TotalX,TotalY,AdjBoxHeight], center = true);

    // Scope out compartment areas
    for(nX=[0:len(x_sizes)-1])
    {
      for(nY=[0:len(y_sizes)-1])
      {
          xOffset = SumList(x_sizes,0,nX) + gWT*(nX+1) + x_sizes[nX]/2 - TotalX/2;
          
          // If lidless, we start from a standard wall thickness. If lidded, we start from RailWidth.
          yStart = isLidless ? gWT : RailWidth;
          yOffset = SumList(y_sizes,0,nY) + yStart + gWT*nY + y_sizes[nY]/2 - TotalY/2;
          
          translate([xOffset,yOffset,gWT]) RCube(x_sizes[nX], y_sizes[nY] ,AdjBoxHeight+20);
      }
    }
  }

  // Only render rails, backstops, and latches if NOT LidlessBox
  if (!isLidless) {
      // top rails
      difference() {
         union() {
              translate([0,-TotalY/2+RailWidth/2,AdjBoxHeight+LidH/2]) cube([TotalX,RailWidth,LidH],center = true);  
              translate([0,TotalY/2-RailWidth/2,AdjBoxHeight+LidH/2]) cube([TotalX,RailWidth,LidH],center = true);
               }
           
          // Trim each rail top to a 45 degree angle     
          translate([0,-TotalY/2,AdjBoxHeight+RailWidth]) rotate([45,0,0]) cube([TotalX,RailWidth+0.7,RailWidth+0.7], center=true); 
          translate([0,TotalY/2,AdjBoxHeight+RailWidth])  rotate([45,0,0]) cube([TotalX,RailWidth+0.7,RailWidth+0.7], center=true);  

          // Substract the lid from the rails
          translate([0,0,AdjBoxHeight]) lid(ipPattern = "Solid",ipTol =0);      
      }  
      
       // add backstop
       translate([TotalX/2-1/2,0,TotalZ-LidH/2])cube([1,TotalY-RailWidth,LidH],center=true);
      
      // create the latches 
        translate([TotalX/2-7,TotalY/2-0.1-RailWidth/2,TotalZ-LidH/2]) scale([1.5,1,1]) difference(){
          rotate([0,0,45]) cube ([2,2,LidH+1],center=true);
          translate([0,2,0]) cube ([4,4,LidH+2],center=true);
          translate([0,-2,0])cube([2,2,LidH+2], center=true);
          }  
        translate([TotalX/2-7,-TotalY/2+0.1+RailWidth/2,TotalZ-LidH/2]) scale([1.5,1,1]) difference(){
          rotate([0,0,45]) cube ([2,2,LidH+1],center=true);
          translate([0,-2,0]) cube ([4,4,LidH+2],center=true);
          translate([0,2,0])cube([2,2,LidH+2], center=true);
          }
  }
} 

// Production Box
if ((Objects == "Both") || (Objects == "Box") || (Objects == "LidlessBox")){
  intersection() {
     box();
     // Final container curvature cut
     RCube(TotalX,TotalY,AdjBoxHeight + (isLidless ? 0 : LidH),1);
  }
}

// Production Lid
if ((Objects == "Both")  || (Objects == "Lid")){
  translate([-TotalX - 10,0,0]) lid(ipPattern = gPattern, ipTol = gTol);
}
